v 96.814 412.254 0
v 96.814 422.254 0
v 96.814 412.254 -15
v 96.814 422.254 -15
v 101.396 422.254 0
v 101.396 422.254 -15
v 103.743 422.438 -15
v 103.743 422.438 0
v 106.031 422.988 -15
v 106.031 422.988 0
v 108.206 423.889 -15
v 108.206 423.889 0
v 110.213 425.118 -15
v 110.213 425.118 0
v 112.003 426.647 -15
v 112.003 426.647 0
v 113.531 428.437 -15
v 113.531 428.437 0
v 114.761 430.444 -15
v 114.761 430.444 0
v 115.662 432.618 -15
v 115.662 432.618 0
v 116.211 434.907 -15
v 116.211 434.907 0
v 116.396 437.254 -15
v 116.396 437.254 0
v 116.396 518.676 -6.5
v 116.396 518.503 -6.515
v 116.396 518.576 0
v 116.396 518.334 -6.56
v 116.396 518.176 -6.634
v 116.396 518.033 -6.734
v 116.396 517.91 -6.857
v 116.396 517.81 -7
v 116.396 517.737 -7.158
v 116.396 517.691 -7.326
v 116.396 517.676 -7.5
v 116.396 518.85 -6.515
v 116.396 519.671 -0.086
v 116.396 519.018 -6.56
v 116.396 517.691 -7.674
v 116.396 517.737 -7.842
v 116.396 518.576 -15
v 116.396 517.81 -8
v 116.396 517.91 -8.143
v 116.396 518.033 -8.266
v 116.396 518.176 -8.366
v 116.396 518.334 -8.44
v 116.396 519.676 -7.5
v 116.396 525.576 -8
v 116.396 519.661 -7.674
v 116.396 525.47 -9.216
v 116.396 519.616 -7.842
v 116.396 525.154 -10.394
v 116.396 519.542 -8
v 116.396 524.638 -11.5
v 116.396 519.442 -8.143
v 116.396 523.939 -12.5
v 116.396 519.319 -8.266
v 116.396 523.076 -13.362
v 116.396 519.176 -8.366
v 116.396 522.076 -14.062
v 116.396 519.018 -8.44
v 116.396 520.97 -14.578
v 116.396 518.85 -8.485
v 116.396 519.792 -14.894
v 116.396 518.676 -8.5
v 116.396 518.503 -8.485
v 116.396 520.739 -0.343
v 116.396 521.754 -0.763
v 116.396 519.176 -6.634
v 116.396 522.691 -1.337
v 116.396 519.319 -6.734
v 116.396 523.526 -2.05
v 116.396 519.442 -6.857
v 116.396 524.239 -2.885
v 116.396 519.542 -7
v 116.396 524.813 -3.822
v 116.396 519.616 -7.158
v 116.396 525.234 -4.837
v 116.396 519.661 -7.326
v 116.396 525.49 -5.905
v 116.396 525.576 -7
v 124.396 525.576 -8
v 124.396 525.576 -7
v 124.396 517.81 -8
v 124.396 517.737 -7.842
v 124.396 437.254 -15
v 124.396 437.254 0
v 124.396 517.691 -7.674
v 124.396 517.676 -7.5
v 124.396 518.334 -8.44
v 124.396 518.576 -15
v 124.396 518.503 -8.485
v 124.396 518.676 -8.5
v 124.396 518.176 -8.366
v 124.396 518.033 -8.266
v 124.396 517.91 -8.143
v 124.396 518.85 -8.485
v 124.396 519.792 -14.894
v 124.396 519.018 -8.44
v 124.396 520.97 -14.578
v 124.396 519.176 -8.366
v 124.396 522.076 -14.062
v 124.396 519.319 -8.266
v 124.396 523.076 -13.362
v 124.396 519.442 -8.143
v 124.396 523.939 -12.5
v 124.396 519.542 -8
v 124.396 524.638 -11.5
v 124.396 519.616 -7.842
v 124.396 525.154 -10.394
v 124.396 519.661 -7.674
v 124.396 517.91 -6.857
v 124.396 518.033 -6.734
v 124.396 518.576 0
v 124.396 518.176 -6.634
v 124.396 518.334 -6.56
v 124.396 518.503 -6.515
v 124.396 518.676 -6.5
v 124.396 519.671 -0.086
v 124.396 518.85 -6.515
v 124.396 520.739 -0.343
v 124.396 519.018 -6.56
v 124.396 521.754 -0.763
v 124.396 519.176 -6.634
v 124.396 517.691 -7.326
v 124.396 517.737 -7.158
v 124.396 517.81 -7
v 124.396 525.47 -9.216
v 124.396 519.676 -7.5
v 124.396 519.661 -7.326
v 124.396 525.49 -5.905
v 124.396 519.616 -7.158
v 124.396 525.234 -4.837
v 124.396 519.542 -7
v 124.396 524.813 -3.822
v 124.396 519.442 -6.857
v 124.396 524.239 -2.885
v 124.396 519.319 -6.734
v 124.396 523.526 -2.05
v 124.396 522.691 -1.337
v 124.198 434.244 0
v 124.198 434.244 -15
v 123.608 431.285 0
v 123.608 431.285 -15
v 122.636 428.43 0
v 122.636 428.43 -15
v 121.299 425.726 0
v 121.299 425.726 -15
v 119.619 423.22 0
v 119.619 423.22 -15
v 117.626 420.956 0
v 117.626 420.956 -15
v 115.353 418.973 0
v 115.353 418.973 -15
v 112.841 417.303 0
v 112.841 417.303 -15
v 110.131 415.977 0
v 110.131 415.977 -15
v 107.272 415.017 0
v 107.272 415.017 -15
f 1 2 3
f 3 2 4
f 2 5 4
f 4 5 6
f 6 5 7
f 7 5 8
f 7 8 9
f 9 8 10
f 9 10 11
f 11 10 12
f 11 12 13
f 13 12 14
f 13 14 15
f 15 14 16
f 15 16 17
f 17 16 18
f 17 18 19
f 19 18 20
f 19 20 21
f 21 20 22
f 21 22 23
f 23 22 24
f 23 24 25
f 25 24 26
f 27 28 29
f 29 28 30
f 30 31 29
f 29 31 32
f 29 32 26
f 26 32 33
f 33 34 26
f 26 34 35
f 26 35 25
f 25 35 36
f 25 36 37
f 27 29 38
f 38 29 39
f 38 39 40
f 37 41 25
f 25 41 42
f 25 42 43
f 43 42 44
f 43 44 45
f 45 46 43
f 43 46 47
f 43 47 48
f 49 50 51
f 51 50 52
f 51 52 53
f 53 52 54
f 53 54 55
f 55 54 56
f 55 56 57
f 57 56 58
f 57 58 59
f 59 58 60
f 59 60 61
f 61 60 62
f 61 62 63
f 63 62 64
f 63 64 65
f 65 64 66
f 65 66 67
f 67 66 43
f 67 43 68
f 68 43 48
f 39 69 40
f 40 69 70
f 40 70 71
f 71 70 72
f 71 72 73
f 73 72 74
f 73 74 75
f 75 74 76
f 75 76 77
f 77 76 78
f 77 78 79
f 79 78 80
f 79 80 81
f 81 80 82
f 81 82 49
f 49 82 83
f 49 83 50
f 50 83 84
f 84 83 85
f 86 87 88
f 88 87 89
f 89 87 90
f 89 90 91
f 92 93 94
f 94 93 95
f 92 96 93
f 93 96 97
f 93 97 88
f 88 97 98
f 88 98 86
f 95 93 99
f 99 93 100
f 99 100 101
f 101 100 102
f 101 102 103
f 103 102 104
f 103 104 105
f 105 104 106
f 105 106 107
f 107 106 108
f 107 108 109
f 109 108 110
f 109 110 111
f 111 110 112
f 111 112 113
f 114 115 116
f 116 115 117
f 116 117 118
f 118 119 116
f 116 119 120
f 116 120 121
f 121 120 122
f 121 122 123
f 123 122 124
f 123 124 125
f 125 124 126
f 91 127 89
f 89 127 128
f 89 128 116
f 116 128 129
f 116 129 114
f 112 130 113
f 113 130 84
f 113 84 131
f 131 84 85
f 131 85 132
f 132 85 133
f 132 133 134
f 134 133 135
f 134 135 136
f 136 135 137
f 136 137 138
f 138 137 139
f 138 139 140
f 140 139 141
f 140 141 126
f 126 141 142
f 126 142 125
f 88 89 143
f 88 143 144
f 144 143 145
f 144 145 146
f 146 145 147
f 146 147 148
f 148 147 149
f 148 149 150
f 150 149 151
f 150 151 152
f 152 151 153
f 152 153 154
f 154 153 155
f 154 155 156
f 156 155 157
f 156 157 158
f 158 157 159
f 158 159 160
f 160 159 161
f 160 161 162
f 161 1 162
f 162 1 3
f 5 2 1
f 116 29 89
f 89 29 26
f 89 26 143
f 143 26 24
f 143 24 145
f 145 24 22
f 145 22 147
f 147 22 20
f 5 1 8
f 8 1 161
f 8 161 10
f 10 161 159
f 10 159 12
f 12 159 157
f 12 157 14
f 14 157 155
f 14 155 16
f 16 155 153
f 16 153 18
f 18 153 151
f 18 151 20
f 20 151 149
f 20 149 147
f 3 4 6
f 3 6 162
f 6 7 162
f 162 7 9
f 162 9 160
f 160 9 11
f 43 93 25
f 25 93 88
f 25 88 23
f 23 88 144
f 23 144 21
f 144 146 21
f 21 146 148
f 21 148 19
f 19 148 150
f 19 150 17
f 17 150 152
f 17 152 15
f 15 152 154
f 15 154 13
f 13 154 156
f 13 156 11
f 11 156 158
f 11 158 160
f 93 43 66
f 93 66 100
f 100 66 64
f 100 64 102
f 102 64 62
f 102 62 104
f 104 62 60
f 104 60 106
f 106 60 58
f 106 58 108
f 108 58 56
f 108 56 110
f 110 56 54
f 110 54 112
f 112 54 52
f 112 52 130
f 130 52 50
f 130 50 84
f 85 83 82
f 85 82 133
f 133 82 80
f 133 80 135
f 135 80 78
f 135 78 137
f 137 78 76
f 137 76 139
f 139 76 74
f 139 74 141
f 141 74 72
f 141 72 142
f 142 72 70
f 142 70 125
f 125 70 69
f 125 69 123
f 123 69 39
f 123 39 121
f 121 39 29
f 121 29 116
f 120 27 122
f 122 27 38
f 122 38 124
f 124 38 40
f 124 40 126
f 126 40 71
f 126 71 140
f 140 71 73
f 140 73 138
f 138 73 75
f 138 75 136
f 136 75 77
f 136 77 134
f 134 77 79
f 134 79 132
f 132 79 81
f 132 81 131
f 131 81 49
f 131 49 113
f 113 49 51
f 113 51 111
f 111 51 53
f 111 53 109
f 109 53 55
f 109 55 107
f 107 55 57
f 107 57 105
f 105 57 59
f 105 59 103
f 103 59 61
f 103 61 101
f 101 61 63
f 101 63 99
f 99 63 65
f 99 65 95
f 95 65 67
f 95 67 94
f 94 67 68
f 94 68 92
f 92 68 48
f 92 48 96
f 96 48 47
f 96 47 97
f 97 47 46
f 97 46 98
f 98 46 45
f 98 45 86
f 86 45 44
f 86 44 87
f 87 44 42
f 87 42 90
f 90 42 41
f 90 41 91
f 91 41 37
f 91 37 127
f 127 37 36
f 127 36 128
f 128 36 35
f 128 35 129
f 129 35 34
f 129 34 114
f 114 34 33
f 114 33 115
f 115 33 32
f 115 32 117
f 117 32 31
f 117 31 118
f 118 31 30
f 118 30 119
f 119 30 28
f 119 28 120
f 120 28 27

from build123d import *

# Parameters (mm, degrees)
BOSS_EXTRUDE1_DEPTH = 15
FILLET1_R           = 7
SKETCH2_R           = 1
CUT_EXTRUDE1_DEPTH  = 8


with BuildPart() as part:
    # Sketch1 → Boss-Extrude1 (new body)
    with BuildSketch(Plane.XY):
        with BuildLine():
            Line((96.814228499, 422.253610621), (101.396155955, 422.253610621))
            ThreePointArc((101.396155955, 422.253610621), (112.002757673, 426.647008903), (116.396155955, 437.253610621))
            Line((116.396155955, 437.253610621), (116.396155955, 525.576232013))
            Line((116.396155955, 525.576232013), (124.396155955, 525.576232013))
            Line((124.396155955, 525.576232013), (124.396155955, 437.253610621))
            ThreePointArc((124.396155955, 437.253610621), (119.618915568, 423.220398868), (107.271718381, 415.016754589))
            Line((107.271718381, 415.016754589), (96.814228499, 412.253610621))
            Line((96.814228499, 412.253610621), (96.814228499, 422.253610621))
        make_face()
    extrude(amount=-BOSS_EXTRUDE1_DEPTH)

    # Fillet1
    fillet1_edges = [part.edges().sort_by_distance(p)[0] for p in [
        (120.396155955, 525.576232013, -15),
        (120.396155955, 525.576232013, 0),
    ]]
    fillet(fillet1_edges, radius=FILLET1_R)

    # Sketch2 → Cut-Extrude1 (cut)
    with BuildSketch(Plane.ZY.offset(-116.396155955)):
        with Locations((-7.5, 518.676232013)):
            Circle(SKETCH2_R)
    extrude(amount=-CUT_EXTRUDE1_DEPTH, mode=Mode.SUBTRACT)


solid = part.part
